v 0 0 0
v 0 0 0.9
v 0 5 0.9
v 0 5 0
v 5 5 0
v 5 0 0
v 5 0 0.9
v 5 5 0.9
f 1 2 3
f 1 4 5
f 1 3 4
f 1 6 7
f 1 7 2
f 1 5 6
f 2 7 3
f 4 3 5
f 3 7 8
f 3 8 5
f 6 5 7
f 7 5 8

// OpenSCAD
/* Warning, this is a very basic generator with a lot of approximation 
input data : [QFN, S8X, 5x5x0.9mm, 32, , B, C04-00160B]
generated by com.zoubworld.electronics.cad.model3d.Basic
Date : Sun Feb 15 10:50:48 CET 2026
*/

//body
color("black")
translate([0,0,0])
cube([5.0,5.0,0.9], center=false);
